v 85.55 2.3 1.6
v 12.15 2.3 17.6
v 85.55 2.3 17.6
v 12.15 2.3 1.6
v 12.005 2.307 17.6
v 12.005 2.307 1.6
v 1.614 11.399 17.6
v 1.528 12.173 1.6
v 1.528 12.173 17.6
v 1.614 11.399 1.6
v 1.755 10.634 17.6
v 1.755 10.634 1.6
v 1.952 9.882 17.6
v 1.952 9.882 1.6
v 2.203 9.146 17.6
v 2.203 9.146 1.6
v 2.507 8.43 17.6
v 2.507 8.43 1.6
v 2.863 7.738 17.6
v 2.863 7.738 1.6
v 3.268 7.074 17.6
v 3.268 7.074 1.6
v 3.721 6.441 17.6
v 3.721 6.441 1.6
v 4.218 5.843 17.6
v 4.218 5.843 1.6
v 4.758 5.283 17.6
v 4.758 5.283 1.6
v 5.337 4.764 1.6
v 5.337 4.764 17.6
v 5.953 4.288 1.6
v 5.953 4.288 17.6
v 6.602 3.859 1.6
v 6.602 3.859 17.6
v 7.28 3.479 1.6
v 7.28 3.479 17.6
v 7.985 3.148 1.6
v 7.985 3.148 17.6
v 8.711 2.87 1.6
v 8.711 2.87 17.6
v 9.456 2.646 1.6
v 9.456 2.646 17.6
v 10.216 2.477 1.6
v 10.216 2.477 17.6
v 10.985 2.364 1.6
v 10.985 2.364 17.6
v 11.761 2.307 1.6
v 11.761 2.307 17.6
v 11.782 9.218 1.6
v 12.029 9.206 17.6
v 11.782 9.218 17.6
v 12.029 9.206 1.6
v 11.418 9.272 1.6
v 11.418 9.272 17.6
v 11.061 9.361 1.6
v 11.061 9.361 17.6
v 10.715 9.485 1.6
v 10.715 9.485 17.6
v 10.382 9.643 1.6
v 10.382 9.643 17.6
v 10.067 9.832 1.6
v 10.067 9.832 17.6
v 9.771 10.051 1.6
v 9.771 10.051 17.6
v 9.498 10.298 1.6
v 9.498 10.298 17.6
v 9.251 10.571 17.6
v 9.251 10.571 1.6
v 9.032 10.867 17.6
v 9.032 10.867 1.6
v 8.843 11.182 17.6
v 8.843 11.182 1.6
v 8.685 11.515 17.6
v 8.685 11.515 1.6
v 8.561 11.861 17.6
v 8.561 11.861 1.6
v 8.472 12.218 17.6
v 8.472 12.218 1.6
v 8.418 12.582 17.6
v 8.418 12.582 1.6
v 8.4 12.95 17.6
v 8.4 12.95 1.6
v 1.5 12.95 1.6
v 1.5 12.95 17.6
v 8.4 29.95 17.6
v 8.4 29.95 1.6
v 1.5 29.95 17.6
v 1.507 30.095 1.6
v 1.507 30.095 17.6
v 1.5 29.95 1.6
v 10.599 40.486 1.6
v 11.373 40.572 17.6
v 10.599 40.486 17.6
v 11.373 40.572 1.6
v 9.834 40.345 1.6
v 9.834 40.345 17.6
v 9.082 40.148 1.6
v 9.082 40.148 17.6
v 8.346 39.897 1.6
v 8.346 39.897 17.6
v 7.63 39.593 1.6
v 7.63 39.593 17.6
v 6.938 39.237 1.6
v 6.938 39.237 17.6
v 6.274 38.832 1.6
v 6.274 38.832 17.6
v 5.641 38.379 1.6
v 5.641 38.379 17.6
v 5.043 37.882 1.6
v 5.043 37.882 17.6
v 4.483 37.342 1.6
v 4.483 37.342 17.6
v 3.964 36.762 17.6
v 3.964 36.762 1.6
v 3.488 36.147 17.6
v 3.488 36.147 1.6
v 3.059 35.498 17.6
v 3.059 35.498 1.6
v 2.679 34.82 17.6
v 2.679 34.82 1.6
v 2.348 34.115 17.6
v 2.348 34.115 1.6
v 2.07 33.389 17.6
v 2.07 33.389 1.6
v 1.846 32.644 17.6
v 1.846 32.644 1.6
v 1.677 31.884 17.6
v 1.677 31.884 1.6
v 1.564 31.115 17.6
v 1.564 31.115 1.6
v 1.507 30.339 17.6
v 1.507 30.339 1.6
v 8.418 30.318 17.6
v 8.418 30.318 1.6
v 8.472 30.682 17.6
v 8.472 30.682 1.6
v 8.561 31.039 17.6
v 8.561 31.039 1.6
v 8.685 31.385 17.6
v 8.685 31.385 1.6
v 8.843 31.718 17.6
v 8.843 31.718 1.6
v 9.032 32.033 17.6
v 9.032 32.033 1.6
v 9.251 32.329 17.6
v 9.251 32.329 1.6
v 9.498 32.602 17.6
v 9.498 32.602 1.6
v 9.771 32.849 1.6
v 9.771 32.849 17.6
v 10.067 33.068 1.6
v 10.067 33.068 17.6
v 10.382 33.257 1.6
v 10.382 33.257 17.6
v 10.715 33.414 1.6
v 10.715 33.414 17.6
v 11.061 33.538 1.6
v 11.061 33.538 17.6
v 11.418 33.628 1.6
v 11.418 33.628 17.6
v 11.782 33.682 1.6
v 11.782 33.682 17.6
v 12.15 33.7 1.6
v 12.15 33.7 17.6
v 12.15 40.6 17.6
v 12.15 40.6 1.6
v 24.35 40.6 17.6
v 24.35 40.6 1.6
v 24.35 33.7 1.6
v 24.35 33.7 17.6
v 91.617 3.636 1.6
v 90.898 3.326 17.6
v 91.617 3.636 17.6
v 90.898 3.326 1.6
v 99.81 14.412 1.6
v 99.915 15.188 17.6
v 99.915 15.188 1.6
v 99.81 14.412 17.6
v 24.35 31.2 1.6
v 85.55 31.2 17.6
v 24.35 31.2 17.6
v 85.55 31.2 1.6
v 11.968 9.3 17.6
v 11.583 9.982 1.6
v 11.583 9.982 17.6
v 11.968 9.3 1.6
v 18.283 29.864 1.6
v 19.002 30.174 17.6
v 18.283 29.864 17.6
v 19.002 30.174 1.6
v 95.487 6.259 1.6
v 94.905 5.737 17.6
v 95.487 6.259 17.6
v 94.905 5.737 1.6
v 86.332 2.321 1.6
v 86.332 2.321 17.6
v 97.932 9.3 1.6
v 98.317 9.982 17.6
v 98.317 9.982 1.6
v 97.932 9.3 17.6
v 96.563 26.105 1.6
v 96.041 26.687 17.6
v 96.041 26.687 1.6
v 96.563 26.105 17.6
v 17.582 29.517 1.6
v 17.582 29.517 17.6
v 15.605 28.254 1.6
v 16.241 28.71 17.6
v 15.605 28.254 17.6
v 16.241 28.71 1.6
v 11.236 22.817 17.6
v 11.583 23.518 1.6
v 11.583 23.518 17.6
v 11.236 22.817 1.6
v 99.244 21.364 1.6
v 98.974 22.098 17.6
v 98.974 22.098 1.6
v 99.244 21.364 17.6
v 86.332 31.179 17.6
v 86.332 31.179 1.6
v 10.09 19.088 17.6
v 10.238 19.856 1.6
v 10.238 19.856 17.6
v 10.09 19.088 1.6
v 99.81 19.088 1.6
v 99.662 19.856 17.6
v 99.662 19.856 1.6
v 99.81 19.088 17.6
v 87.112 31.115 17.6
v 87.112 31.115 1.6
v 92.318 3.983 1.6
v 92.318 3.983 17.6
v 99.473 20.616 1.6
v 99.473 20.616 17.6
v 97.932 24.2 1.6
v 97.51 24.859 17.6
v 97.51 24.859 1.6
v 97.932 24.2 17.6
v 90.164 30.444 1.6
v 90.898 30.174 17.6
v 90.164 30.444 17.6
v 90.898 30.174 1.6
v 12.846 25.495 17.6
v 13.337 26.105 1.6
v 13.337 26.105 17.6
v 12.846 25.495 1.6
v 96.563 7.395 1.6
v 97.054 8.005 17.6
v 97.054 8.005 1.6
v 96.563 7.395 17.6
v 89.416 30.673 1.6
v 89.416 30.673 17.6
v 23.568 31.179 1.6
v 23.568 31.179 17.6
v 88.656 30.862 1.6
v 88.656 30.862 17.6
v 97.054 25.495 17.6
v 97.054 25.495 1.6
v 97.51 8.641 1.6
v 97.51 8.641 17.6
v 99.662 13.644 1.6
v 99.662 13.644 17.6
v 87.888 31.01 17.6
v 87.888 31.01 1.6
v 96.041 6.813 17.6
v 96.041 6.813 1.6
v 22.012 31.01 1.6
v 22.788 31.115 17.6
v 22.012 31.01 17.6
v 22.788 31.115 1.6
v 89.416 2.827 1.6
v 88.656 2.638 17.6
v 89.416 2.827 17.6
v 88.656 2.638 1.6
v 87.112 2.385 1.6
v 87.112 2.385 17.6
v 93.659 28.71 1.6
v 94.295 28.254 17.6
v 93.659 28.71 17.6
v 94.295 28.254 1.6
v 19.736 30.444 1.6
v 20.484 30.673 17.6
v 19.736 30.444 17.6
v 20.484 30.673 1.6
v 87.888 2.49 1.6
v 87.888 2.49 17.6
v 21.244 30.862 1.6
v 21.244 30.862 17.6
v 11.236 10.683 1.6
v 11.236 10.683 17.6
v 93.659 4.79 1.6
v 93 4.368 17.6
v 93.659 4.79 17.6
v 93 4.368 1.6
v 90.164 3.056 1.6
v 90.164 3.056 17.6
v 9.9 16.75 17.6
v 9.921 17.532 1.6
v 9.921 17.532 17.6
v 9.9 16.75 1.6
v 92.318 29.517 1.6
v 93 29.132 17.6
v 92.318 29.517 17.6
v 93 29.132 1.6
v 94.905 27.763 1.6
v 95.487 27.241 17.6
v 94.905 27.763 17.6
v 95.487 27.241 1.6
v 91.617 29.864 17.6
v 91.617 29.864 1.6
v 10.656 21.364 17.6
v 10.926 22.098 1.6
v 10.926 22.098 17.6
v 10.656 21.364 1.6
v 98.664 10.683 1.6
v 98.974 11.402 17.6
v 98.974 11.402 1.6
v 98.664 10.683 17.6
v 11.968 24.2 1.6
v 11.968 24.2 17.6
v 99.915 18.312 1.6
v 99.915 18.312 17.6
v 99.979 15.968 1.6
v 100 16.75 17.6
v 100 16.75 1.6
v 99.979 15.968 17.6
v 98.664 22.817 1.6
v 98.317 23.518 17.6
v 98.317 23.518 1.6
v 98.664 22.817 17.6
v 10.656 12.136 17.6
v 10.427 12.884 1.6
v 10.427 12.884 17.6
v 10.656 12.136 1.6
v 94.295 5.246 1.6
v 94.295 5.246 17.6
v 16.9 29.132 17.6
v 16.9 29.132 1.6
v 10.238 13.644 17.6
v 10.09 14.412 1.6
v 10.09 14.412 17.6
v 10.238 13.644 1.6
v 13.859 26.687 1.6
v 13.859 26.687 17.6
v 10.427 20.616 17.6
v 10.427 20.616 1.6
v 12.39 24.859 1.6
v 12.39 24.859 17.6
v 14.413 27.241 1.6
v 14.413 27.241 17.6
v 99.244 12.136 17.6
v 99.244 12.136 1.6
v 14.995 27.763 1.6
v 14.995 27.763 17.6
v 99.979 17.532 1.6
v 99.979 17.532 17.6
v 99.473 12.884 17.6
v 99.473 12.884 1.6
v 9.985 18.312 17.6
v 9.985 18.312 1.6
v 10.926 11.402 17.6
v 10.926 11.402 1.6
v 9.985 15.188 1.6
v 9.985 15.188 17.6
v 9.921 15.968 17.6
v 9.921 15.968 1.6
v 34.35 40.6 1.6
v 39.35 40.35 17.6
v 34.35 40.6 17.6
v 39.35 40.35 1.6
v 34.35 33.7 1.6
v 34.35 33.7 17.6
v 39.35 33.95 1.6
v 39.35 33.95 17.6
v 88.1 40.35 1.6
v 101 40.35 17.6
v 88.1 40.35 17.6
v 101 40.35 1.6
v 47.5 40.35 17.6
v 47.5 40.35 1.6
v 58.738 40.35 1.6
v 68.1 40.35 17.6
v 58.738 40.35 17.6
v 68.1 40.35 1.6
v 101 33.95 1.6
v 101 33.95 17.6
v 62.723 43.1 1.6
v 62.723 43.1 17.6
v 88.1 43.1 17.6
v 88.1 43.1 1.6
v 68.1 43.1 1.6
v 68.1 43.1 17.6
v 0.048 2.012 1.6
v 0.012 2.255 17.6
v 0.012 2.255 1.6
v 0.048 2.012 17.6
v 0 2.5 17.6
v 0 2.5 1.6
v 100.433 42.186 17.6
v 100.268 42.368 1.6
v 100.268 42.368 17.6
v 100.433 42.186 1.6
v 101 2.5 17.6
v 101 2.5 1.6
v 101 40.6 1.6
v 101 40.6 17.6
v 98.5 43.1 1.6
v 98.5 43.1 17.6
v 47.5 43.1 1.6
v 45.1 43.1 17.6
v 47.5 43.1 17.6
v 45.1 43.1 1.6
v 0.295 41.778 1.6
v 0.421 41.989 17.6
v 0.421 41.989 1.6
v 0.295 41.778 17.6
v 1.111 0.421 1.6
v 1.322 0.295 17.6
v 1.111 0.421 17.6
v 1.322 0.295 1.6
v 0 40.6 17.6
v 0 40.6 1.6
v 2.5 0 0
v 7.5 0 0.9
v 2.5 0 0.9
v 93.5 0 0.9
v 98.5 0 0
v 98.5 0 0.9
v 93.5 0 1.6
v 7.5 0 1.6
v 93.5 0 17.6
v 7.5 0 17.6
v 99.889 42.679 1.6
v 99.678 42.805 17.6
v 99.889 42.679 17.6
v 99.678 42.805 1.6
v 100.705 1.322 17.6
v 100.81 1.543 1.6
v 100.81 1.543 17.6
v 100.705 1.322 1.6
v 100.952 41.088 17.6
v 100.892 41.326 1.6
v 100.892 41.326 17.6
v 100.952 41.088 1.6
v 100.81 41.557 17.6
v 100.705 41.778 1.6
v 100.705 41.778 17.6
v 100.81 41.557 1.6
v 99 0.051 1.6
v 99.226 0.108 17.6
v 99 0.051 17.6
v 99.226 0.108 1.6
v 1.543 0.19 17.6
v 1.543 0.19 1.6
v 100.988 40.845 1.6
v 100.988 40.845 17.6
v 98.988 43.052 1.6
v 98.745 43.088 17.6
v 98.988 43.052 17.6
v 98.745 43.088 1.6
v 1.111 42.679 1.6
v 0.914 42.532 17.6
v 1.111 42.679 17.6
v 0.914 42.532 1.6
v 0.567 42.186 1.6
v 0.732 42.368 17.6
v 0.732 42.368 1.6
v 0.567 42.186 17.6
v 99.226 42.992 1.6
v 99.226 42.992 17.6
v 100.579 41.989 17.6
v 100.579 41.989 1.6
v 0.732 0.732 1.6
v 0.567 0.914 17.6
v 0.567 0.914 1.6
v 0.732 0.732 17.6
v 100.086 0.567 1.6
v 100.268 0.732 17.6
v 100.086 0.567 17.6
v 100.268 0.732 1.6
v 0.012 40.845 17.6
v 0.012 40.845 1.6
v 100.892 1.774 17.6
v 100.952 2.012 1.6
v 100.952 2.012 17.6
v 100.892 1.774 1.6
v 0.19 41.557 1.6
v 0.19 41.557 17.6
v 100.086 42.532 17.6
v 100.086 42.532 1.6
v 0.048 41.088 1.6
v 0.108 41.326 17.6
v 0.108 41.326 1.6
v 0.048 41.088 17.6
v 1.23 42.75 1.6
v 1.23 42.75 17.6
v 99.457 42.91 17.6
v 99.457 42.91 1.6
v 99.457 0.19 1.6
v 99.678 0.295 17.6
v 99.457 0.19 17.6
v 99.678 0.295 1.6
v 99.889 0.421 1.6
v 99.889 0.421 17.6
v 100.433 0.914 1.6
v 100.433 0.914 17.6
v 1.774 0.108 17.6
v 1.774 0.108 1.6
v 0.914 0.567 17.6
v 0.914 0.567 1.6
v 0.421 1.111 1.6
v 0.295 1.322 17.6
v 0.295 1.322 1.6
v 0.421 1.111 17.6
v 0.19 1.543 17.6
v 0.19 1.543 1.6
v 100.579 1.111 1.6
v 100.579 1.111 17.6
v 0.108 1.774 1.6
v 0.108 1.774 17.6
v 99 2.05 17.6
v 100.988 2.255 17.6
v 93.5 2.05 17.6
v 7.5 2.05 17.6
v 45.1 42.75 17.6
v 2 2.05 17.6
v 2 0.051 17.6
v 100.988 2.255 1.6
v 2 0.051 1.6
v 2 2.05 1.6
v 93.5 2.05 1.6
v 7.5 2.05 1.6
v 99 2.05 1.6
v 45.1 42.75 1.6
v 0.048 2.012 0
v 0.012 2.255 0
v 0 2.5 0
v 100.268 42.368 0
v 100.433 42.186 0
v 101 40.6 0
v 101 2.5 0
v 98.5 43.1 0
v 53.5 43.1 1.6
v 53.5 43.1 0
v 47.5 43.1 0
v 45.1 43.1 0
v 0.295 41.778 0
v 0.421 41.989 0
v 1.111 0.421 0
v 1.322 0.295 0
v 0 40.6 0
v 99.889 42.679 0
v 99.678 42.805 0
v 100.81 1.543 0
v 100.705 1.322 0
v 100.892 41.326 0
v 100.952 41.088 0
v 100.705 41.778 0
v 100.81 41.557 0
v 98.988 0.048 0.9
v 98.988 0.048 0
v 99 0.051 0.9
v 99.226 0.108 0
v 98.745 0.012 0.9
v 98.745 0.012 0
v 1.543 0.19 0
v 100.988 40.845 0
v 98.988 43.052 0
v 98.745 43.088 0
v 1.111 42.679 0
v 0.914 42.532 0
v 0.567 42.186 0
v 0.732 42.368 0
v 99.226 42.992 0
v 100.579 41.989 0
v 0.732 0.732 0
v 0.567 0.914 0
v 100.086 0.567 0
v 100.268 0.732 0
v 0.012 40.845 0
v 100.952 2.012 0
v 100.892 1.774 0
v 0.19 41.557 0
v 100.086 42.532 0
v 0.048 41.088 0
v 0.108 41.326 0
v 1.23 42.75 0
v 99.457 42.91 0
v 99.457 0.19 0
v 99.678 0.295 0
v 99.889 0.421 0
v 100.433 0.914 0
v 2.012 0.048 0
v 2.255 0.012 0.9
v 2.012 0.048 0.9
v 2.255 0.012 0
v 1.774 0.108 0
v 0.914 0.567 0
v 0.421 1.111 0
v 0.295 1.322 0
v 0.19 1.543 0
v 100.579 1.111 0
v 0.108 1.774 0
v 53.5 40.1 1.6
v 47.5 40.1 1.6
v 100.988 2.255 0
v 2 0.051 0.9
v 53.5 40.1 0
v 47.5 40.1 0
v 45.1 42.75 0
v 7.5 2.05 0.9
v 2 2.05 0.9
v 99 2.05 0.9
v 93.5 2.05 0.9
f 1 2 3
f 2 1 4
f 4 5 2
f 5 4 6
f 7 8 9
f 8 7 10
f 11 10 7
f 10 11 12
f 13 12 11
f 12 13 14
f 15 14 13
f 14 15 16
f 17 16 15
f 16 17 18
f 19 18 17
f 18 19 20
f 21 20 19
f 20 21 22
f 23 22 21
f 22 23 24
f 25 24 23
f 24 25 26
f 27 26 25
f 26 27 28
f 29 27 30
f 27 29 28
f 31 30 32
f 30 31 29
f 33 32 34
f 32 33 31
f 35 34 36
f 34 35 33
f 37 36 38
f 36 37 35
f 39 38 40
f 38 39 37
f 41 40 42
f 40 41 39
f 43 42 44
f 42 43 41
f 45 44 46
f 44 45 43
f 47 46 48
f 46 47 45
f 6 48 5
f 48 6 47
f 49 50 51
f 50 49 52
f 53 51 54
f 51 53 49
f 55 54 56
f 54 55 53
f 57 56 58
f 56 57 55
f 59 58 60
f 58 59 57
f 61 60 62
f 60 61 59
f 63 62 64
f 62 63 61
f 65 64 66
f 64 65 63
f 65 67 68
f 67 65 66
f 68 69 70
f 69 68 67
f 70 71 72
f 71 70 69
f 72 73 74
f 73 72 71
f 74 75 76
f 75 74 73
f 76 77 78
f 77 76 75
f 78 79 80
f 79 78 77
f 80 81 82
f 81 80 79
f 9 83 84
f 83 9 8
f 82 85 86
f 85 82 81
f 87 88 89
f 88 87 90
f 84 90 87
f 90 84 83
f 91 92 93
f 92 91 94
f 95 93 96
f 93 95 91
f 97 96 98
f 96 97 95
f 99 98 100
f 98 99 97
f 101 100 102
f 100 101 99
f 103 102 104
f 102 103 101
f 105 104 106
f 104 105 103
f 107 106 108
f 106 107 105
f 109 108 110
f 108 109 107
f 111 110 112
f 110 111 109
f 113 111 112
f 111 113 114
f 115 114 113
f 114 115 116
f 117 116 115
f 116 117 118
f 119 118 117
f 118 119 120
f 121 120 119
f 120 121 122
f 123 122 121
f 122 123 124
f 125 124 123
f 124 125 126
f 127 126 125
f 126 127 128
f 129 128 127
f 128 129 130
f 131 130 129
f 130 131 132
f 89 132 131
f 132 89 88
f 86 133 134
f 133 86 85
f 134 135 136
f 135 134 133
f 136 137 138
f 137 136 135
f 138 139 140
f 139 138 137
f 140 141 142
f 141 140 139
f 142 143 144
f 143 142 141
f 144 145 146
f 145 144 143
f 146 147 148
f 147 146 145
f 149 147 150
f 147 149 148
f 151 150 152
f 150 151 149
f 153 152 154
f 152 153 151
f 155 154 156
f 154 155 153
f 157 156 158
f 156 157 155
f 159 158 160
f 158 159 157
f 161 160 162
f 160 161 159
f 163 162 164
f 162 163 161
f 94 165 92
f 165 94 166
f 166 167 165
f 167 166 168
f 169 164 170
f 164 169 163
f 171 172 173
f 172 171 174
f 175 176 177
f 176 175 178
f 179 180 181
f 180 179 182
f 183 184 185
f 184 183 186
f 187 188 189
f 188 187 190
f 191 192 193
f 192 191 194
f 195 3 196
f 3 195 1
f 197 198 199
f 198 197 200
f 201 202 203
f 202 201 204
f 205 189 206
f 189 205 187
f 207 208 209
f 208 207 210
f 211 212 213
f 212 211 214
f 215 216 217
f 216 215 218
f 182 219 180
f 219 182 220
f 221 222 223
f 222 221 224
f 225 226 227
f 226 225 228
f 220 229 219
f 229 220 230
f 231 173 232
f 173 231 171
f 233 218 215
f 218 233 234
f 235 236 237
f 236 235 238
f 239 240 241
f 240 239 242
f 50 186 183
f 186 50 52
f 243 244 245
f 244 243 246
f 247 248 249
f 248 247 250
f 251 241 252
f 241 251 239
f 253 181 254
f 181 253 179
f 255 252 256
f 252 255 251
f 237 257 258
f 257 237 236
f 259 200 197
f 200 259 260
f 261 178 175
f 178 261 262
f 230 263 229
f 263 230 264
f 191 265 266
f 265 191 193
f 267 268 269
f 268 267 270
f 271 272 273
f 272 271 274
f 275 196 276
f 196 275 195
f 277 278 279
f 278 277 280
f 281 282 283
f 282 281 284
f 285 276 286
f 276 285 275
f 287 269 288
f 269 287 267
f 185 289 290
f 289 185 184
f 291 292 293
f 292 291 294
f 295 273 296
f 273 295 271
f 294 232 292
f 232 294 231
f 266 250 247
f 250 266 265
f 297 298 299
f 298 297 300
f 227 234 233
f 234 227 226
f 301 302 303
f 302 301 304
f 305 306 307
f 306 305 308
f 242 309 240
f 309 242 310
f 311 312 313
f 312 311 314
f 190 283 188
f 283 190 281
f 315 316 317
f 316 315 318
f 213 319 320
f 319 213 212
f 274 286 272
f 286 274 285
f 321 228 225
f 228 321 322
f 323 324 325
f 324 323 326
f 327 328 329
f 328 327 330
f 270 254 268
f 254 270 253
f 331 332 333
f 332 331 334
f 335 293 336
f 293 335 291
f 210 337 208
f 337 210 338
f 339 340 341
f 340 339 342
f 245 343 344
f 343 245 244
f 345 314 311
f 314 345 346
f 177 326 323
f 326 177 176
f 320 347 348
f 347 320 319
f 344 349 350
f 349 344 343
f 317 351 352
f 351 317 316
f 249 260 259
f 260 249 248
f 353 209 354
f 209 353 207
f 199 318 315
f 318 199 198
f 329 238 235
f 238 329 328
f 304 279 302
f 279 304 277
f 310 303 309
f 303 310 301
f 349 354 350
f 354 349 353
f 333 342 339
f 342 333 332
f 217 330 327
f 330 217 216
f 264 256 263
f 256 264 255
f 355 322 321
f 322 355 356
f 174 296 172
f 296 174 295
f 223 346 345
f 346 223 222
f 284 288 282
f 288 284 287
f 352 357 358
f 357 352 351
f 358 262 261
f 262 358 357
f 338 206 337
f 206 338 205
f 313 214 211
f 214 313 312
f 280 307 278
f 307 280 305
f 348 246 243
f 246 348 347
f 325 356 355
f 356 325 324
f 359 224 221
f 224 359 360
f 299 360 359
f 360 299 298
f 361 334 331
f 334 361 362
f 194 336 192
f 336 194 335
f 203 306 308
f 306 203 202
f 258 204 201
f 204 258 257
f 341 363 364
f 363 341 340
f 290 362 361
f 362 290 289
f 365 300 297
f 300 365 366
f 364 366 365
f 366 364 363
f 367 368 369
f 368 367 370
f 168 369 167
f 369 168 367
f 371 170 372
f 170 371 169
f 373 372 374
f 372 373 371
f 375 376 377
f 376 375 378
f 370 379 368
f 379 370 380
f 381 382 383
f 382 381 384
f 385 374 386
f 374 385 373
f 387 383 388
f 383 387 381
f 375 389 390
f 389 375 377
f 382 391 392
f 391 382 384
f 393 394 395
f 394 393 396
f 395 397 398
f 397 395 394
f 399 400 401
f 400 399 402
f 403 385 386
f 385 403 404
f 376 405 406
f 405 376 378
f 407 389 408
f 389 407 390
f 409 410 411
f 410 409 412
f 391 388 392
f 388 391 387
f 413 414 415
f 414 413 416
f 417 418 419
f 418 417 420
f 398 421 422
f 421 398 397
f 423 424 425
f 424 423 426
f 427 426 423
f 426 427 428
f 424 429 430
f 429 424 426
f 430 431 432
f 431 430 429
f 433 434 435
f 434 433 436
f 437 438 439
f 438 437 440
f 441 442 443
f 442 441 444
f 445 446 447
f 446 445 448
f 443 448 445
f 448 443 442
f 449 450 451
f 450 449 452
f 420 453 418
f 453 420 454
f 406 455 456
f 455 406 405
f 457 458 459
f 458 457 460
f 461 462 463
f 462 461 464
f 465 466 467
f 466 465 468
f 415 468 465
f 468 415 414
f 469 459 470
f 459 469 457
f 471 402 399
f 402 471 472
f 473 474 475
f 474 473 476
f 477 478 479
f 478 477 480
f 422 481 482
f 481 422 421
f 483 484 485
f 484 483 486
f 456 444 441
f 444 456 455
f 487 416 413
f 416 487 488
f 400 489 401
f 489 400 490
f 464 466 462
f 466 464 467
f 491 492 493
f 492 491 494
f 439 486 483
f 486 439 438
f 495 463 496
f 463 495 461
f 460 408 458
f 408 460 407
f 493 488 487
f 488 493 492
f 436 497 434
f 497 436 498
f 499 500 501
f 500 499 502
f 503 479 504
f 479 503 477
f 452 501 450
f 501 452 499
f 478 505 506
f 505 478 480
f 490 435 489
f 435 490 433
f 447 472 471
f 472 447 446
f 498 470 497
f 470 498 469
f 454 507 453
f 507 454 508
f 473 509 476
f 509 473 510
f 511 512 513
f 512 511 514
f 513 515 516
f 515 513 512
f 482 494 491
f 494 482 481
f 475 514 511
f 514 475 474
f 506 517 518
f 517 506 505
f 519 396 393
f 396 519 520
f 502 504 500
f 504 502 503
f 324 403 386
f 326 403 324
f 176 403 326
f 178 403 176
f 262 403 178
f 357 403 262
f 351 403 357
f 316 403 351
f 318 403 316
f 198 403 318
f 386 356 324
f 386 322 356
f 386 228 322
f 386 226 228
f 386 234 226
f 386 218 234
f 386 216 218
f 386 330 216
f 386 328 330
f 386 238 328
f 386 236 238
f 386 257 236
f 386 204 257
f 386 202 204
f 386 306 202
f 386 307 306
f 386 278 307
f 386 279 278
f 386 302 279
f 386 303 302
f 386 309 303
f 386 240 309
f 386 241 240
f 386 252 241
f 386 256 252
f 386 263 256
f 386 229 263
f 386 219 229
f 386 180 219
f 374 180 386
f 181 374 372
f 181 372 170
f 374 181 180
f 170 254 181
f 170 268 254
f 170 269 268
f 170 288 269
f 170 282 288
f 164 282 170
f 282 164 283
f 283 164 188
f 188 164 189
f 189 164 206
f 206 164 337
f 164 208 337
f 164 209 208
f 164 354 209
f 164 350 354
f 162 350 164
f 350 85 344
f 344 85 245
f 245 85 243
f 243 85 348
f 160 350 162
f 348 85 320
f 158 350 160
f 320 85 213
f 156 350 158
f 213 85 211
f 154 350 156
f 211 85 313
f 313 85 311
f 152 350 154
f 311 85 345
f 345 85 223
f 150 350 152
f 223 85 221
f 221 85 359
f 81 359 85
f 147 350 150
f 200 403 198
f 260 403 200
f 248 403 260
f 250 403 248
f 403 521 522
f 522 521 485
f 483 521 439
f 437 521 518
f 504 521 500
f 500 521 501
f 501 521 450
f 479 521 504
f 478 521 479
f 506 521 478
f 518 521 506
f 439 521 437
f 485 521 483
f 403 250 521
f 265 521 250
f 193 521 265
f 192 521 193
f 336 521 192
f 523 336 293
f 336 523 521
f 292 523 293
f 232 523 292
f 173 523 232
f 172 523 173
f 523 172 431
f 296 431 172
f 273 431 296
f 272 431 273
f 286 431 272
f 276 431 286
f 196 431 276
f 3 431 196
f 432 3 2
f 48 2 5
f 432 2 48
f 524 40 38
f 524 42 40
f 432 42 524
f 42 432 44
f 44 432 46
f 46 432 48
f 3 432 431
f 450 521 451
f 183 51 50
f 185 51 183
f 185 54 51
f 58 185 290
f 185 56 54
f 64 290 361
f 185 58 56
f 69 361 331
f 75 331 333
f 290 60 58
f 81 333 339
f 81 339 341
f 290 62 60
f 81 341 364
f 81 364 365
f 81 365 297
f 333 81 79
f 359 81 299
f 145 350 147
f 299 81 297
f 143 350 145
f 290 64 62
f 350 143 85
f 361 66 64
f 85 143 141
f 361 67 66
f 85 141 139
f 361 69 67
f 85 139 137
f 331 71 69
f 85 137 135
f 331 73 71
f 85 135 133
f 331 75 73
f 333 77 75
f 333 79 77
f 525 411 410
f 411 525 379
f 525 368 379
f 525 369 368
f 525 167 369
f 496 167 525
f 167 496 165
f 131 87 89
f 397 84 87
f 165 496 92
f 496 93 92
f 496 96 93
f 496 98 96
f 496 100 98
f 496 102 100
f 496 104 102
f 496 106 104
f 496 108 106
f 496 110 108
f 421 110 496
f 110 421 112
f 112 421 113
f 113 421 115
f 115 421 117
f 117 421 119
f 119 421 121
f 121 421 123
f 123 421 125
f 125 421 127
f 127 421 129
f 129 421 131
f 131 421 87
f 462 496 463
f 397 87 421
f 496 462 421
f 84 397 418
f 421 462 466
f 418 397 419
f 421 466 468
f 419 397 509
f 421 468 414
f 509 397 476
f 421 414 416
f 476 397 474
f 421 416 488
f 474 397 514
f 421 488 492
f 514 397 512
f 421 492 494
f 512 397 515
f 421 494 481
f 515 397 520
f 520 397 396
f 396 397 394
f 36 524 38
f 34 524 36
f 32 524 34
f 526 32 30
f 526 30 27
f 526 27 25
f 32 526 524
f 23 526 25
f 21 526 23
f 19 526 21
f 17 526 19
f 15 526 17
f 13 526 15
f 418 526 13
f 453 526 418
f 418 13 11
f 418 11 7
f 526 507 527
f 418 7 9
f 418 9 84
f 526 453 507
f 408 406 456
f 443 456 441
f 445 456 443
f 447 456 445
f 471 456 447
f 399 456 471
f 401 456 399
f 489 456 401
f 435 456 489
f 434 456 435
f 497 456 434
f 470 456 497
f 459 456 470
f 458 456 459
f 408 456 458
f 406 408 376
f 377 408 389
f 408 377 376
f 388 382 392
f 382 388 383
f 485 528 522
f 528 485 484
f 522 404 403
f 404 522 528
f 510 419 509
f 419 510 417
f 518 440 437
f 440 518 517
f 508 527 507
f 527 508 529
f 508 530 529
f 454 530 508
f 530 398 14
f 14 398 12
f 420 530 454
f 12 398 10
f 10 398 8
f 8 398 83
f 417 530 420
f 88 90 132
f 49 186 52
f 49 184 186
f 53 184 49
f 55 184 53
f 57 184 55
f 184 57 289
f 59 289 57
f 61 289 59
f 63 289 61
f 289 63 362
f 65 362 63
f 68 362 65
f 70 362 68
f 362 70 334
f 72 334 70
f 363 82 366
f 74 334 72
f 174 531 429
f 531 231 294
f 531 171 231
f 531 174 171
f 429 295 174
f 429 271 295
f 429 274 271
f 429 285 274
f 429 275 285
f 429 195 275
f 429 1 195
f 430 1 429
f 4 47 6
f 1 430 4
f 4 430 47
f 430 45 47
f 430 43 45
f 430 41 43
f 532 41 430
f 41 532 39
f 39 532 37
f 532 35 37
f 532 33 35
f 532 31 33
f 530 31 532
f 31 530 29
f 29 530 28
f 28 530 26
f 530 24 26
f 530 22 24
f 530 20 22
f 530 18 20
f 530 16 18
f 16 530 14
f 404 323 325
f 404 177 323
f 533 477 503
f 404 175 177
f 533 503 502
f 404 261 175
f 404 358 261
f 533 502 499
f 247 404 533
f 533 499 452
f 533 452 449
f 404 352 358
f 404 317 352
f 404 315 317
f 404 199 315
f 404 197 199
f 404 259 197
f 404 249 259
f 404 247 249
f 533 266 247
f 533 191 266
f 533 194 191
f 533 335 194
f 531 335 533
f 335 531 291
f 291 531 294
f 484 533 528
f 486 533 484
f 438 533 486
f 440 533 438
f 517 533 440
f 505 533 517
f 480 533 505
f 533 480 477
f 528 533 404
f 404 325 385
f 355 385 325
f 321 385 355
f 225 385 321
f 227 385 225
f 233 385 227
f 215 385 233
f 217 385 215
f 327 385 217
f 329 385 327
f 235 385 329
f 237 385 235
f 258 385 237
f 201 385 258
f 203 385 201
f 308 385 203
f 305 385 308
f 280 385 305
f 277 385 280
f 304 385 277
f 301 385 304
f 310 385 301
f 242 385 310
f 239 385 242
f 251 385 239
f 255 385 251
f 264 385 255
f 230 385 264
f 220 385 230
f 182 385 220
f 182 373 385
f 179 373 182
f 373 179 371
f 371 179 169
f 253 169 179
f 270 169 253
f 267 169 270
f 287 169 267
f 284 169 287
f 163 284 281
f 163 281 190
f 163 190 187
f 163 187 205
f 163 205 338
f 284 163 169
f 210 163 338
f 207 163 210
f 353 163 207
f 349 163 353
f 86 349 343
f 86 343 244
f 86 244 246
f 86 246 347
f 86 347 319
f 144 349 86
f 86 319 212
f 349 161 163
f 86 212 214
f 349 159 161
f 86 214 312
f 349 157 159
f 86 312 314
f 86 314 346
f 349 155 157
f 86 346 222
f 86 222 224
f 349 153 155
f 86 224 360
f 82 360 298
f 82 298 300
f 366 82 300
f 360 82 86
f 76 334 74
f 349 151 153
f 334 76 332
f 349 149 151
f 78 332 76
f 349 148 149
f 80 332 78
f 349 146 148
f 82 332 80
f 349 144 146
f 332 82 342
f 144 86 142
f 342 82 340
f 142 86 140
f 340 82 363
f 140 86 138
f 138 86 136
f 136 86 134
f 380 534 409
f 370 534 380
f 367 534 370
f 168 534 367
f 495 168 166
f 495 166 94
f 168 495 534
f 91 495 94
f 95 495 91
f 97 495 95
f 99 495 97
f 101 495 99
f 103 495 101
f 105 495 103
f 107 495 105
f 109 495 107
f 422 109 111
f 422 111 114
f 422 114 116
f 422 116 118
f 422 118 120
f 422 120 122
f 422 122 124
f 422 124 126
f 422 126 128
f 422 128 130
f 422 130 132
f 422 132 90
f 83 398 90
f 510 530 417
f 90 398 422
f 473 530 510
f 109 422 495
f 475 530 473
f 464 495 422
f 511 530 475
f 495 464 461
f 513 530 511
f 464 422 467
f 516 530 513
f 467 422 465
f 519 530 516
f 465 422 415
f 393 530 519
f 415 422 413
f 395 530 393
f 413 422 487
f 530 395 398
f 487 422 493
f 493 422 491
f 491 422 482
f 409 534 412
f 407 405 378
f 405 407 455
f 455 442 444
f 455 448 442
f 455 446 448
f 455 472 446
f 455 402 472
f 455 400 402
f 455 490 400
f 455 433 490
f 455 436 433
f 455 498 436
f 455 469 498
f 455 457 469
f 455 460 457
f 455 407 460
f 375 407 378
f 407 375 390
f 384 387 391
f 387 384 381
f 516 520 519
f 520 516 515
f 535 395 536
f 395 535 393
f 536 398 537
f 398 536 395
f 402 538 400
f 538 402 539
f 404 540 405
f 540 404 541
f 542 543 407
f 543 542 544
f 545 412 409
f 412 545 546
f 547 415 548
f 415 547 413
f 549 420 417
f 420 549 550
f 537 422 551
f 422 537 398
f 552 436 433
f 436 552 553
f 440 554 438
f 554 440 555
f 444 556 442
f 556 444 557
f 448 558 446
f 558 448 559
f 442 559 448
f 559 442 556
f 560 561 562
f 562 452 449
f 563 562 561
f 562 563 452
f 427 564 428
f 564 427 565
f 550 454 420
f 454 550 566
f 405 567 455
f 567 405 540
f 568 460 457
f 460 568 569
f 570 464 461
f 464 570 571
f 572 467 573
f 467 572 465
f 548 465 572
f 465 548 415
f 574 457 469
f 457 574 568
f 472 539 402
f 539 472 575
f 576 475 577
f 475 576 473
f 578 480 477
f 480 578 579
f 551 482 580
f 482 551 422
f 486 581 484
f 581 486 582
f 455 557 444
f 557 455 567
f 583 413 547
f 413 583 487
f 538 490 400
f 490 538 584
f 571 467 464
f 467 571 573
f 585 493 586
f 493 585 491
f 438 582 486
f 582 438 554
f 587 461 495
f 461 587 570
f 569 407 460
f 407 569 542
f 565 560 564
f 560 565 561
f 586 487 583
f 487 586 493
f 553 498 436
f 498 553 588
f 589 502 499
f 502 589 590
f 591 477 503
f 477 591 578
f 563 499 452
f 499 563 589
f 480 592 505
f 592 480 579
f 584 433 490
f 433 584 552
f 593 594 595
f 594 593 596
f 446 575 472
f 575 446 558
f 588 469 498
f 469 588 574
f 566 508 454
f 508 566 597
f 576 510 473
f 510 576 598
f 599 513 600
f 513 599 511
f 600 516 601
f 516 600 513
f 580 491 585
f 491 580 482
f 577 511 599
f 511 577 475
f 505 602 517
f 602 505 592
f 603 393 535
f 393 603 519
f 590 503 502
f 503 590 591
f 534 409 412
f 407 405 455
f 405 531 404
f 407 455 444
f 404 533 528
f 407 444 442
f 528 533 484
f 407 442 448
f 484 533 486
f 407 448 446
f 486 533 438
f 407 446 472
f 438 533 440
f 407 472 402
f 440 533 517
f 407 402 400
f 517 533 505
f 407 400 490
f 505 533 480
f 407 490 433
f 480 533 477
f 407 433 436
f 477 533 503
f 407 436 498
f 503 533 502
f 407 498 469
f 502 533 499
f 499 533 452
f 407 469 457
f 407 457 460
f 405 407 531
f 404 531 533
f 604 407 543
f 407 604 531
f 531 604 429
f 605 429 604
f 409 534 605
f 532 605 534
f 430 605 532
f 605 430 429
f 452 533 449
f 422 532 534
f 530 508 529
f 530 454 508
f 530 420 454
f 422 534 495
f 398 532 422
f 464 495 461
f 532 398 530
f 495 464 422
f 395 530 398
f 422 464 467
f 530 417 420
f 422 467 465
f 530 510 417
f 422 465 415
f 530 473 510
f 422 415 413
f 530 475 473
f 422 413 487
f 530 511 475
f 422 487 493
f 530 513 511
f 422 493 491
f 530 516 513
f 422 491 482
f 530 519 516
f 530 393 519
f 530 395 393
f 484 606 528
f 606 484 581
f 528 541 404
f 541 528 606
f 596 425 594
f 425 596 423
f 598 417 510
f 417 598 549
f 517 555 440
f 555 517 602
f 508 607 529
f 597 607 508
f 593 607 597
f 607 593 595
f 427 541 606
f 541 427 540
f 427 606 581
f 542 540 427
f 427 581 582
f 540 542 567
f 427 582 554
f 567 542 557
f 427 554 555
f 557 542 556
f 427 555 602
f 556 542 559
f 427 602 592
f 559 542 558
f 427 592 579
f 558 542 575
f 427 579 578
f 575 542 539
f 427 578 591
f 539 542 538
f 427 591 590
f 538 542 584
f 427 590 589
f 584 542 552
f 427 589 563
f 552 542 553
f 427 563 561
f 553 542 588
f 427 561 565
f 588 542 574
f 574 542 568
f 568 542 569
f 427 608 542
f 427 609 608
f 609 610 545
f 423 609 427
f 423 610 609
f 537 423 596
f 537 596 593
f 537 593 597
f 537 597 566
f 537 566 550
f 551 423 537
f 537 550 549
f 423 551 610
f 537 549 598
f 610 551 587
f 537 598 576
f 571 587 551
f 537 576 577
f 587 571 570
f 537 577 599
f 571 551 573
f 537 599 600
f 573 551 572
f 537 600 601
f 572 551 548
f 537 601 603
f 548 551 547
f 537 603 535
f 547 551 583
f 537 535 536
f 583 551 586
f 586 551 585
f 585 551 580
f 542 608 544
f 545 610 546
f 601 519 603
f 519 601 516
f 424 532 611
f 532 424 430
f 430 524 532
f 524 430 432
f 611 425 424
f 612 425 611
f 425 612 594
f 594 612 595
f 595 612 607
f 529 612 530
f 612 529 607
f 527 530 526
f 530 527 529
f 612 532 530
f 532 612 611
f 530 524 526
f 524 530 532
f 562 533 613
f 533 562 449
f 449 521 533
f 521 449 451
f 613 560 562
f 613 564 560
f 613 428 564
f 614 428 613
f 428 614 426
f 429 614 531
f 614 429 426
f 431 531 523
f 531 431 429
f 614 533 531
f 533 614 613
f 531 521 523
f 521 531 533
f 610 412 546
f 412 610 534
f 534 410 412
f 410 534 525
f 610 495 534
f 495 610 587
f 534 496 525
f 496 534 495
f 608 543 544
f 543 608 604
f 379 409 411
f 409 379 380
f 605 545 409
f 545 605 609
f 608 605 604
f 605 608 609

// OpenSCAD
module Path(){
  translate([0, 0, -0.002])union(){
      translate([0, 0, -0.002])hull(){
          translate([0, 0, -0.002])cylinder(d=6.9,h=17.008,$fn=64);
          translate([-12.2, 0, -0.002])cylinder(d=6.9,h=17.008,$fn=64);
        }

      translate([-12.2, 0, -0.002])linear_extrude(height=17.004)translate([0, 7.2, 0])rotate([0, 0, 180])intersection(){
                difference(){
                  circle(d=21.3,$fn=86);
                  circle(d=7.5,$fn=64);
                }

                polygon(points=[[0, 0], [0, 0.213e2], [0.213e2, 0.1304248841091931158e-14]],convexity=10);
              }

      translate([0, 0, -0.002])hull(){
          translate([-19.4, 7.1999999999999975, -0.002])cylinder(d=6.9,h=17.008,$fn=64);
          translate([-19.4, 24.2, -0.002])cylinder(d=6.9,h=17.008,$fn=64);
        }

      translate([-19.4, 24.2, -0.002])linear_extrude(height=17.004)translate([7.2, 0, 0])rotate([0, 0, 90])intersection(){
                difference(){
                  circle(d=21.3,$fn=86);
                  circle(d=7.5,$fn=64);
                }

                polygon(points=[[0, 0], [0, 0.213e2], [0.213e2, 0.1304248841091931158e-14]],convexity=10);
              }

      translate([0, 0, -0.002])hull(){
          translate([-12.200000000000001, 31.4, -0.002])cylinder(d=6.9,h=17.008,$fn=64);
          translate([-8.817456953860941e-16, 31.4, -0.002])cylinder(d=6.9,h=17.008,$fn=64);
        }

    }
}
module GridSegment_extra_w_1_0_extra_len_2_h_1_5_w_2_08_repeat_x_2_repeat_y_1_lid_extra_w_1_0_lid_extra_h_0_4_no_bottom_true(){
  translate([25.85, 25.85, 0])union(){
      translate([0, 0, 45])%linear_extrude(height=1)union(){
            translate([-25.85, -25.85, 0])square([51.7, 51.7]);
            translate([-25.85, -25.85, 0])square([51.7, 51.7]);
            translate([27.85, -25.85, 0])square([51.7, 51.7]);
          }

      translate([0, 0, 41.5])color("blue")linear_extrude(height=3.5)union(){
              translate([-21.6, 22.95, 0])square([43.2, 2.2]);
              translate([-21.6, -25.15, 0])square([43.2, 2.2]);
              translate([22.95, -21.6, 0])square([2.2, 43.2]);
              translate([-25.15, -21.6, 0])square([2.2, 43.2]);
              union(){
                translate([-21.6, 22.95, 0])square([43.2, 2.2]);
                translate([-21.6, -25.15, 0])square([43.2, 2.2]);
                translate([22.95, -21.6, 0])square([2.2, 43.2]);
                translate([-25.15, -21.6, 0])square([2.2, 43.2]);
              }

              translate([53.7, 0, 0])union(){
                  translate([-21.6, 22.95, 0])square([43.2, 2.2]);
                  translate([-21.6, -25.15, 0])square([43.2, 2.2]);
                  translate([22.95, -21.6, 0])square([2.2, 43.2]);
                  translate([-25.15, -21.6, 0])square([2.2, 43.2]);
                }

            }

    }
}
module SmdDispenser_strip_h_16_strip_w_6_0(){
  difference(){
    color("pink")union(){
        translate([0, 0, 1.6])difference(){
            union()linear_extrude(height=16)translate([2.5, 2.5, 0])hull(){
                    circle(d=5,$fn=64);
                    translate([96, 0, 0])circle(d=5,$fn=64);
                    translate([0, 38.1, 0])circle(d=5,$fn=64);
                    translate([96, 38.1, 0])circle(d=5,$fn=64);
                  }

            translate([24.35, 37.15, -0.002])union(){
                translate([8.817456953860941e-16, -31.4, -0.002])union(){
                    translate([0, 0, -0.002])Path();
                    translate([0, 11, 0])hull(){
                        translate([0, 0, -0.1])cylinder(d=28.9,h=17.208,$fn=116);
                        translate([61.2, 0, -0.1])cylinder(d=28.9,h=17.408,$fn=116);
                      }

                  }

                translate([0, 0, -0.004])hull(){
                    translate([0, -3.45, -0.004])cube([10, 6.9, 16.016]);
                    translate([5, -3.2, -0.004])cube([10, 6.4, 16.016]);
                  }

                translate([0, -3.2, -0.004])color("blue")cube([101, 6.4, 16.016]);
                translate([29.75, 0, -0.004])linear_extrude(height=16.008)hull(){
                      translate([7, 17.25, 0])square([18, 0.001]);
                      translate([-9, 0, 0])square([9, 0.001]);
                    }

                translate([43.75, 0, -0.1])cube([20, 20.7, 17.208]);
              }

          }

        union()linear_extrude(height=1.6)translate([2.5, 2.5, 0])hull(){
                circle(d=5,$fn=64);
                translate([96, 0, 0])circle(d=5,$fn=64);
                translate([0, 38.1, 0])circle(d=5,$fn=64);
                translate([96, 38.1, 0])circle(d=5,$fn=64);
              }

      }

    translate([-0.1, 42.75, -0.1])color("silver")cube([45.2, 0.5, 18.8]);
    translate([0, 0, 1])color("DarkOrchid")union(){
          translate([2, 0, -0.1])cube([5.5, 2.05, 18.8]);
          translate([93.5, 0, -0.1])cube([5.5, 2.05, 19]);
        }

    translate([0, 0, -5])mirror([])rotate([90, 0, 0])translate([-2.40000000000001, 0, -1.5])GridSegment_extra_w_1_0_extra_len_2_h_1_5_w_2_08_repeat_x_2_repeat_y_1_lid_extra_w_1_0_lid_extra_h_0_4_no_bottom_true();
    translate([47.5, 40.1, -0.002])color("purple")cube([6, 6, 17.608]);
  }
}
$fn=64;
SmdDispenser_strip_h_16_strip_w_6_0();
